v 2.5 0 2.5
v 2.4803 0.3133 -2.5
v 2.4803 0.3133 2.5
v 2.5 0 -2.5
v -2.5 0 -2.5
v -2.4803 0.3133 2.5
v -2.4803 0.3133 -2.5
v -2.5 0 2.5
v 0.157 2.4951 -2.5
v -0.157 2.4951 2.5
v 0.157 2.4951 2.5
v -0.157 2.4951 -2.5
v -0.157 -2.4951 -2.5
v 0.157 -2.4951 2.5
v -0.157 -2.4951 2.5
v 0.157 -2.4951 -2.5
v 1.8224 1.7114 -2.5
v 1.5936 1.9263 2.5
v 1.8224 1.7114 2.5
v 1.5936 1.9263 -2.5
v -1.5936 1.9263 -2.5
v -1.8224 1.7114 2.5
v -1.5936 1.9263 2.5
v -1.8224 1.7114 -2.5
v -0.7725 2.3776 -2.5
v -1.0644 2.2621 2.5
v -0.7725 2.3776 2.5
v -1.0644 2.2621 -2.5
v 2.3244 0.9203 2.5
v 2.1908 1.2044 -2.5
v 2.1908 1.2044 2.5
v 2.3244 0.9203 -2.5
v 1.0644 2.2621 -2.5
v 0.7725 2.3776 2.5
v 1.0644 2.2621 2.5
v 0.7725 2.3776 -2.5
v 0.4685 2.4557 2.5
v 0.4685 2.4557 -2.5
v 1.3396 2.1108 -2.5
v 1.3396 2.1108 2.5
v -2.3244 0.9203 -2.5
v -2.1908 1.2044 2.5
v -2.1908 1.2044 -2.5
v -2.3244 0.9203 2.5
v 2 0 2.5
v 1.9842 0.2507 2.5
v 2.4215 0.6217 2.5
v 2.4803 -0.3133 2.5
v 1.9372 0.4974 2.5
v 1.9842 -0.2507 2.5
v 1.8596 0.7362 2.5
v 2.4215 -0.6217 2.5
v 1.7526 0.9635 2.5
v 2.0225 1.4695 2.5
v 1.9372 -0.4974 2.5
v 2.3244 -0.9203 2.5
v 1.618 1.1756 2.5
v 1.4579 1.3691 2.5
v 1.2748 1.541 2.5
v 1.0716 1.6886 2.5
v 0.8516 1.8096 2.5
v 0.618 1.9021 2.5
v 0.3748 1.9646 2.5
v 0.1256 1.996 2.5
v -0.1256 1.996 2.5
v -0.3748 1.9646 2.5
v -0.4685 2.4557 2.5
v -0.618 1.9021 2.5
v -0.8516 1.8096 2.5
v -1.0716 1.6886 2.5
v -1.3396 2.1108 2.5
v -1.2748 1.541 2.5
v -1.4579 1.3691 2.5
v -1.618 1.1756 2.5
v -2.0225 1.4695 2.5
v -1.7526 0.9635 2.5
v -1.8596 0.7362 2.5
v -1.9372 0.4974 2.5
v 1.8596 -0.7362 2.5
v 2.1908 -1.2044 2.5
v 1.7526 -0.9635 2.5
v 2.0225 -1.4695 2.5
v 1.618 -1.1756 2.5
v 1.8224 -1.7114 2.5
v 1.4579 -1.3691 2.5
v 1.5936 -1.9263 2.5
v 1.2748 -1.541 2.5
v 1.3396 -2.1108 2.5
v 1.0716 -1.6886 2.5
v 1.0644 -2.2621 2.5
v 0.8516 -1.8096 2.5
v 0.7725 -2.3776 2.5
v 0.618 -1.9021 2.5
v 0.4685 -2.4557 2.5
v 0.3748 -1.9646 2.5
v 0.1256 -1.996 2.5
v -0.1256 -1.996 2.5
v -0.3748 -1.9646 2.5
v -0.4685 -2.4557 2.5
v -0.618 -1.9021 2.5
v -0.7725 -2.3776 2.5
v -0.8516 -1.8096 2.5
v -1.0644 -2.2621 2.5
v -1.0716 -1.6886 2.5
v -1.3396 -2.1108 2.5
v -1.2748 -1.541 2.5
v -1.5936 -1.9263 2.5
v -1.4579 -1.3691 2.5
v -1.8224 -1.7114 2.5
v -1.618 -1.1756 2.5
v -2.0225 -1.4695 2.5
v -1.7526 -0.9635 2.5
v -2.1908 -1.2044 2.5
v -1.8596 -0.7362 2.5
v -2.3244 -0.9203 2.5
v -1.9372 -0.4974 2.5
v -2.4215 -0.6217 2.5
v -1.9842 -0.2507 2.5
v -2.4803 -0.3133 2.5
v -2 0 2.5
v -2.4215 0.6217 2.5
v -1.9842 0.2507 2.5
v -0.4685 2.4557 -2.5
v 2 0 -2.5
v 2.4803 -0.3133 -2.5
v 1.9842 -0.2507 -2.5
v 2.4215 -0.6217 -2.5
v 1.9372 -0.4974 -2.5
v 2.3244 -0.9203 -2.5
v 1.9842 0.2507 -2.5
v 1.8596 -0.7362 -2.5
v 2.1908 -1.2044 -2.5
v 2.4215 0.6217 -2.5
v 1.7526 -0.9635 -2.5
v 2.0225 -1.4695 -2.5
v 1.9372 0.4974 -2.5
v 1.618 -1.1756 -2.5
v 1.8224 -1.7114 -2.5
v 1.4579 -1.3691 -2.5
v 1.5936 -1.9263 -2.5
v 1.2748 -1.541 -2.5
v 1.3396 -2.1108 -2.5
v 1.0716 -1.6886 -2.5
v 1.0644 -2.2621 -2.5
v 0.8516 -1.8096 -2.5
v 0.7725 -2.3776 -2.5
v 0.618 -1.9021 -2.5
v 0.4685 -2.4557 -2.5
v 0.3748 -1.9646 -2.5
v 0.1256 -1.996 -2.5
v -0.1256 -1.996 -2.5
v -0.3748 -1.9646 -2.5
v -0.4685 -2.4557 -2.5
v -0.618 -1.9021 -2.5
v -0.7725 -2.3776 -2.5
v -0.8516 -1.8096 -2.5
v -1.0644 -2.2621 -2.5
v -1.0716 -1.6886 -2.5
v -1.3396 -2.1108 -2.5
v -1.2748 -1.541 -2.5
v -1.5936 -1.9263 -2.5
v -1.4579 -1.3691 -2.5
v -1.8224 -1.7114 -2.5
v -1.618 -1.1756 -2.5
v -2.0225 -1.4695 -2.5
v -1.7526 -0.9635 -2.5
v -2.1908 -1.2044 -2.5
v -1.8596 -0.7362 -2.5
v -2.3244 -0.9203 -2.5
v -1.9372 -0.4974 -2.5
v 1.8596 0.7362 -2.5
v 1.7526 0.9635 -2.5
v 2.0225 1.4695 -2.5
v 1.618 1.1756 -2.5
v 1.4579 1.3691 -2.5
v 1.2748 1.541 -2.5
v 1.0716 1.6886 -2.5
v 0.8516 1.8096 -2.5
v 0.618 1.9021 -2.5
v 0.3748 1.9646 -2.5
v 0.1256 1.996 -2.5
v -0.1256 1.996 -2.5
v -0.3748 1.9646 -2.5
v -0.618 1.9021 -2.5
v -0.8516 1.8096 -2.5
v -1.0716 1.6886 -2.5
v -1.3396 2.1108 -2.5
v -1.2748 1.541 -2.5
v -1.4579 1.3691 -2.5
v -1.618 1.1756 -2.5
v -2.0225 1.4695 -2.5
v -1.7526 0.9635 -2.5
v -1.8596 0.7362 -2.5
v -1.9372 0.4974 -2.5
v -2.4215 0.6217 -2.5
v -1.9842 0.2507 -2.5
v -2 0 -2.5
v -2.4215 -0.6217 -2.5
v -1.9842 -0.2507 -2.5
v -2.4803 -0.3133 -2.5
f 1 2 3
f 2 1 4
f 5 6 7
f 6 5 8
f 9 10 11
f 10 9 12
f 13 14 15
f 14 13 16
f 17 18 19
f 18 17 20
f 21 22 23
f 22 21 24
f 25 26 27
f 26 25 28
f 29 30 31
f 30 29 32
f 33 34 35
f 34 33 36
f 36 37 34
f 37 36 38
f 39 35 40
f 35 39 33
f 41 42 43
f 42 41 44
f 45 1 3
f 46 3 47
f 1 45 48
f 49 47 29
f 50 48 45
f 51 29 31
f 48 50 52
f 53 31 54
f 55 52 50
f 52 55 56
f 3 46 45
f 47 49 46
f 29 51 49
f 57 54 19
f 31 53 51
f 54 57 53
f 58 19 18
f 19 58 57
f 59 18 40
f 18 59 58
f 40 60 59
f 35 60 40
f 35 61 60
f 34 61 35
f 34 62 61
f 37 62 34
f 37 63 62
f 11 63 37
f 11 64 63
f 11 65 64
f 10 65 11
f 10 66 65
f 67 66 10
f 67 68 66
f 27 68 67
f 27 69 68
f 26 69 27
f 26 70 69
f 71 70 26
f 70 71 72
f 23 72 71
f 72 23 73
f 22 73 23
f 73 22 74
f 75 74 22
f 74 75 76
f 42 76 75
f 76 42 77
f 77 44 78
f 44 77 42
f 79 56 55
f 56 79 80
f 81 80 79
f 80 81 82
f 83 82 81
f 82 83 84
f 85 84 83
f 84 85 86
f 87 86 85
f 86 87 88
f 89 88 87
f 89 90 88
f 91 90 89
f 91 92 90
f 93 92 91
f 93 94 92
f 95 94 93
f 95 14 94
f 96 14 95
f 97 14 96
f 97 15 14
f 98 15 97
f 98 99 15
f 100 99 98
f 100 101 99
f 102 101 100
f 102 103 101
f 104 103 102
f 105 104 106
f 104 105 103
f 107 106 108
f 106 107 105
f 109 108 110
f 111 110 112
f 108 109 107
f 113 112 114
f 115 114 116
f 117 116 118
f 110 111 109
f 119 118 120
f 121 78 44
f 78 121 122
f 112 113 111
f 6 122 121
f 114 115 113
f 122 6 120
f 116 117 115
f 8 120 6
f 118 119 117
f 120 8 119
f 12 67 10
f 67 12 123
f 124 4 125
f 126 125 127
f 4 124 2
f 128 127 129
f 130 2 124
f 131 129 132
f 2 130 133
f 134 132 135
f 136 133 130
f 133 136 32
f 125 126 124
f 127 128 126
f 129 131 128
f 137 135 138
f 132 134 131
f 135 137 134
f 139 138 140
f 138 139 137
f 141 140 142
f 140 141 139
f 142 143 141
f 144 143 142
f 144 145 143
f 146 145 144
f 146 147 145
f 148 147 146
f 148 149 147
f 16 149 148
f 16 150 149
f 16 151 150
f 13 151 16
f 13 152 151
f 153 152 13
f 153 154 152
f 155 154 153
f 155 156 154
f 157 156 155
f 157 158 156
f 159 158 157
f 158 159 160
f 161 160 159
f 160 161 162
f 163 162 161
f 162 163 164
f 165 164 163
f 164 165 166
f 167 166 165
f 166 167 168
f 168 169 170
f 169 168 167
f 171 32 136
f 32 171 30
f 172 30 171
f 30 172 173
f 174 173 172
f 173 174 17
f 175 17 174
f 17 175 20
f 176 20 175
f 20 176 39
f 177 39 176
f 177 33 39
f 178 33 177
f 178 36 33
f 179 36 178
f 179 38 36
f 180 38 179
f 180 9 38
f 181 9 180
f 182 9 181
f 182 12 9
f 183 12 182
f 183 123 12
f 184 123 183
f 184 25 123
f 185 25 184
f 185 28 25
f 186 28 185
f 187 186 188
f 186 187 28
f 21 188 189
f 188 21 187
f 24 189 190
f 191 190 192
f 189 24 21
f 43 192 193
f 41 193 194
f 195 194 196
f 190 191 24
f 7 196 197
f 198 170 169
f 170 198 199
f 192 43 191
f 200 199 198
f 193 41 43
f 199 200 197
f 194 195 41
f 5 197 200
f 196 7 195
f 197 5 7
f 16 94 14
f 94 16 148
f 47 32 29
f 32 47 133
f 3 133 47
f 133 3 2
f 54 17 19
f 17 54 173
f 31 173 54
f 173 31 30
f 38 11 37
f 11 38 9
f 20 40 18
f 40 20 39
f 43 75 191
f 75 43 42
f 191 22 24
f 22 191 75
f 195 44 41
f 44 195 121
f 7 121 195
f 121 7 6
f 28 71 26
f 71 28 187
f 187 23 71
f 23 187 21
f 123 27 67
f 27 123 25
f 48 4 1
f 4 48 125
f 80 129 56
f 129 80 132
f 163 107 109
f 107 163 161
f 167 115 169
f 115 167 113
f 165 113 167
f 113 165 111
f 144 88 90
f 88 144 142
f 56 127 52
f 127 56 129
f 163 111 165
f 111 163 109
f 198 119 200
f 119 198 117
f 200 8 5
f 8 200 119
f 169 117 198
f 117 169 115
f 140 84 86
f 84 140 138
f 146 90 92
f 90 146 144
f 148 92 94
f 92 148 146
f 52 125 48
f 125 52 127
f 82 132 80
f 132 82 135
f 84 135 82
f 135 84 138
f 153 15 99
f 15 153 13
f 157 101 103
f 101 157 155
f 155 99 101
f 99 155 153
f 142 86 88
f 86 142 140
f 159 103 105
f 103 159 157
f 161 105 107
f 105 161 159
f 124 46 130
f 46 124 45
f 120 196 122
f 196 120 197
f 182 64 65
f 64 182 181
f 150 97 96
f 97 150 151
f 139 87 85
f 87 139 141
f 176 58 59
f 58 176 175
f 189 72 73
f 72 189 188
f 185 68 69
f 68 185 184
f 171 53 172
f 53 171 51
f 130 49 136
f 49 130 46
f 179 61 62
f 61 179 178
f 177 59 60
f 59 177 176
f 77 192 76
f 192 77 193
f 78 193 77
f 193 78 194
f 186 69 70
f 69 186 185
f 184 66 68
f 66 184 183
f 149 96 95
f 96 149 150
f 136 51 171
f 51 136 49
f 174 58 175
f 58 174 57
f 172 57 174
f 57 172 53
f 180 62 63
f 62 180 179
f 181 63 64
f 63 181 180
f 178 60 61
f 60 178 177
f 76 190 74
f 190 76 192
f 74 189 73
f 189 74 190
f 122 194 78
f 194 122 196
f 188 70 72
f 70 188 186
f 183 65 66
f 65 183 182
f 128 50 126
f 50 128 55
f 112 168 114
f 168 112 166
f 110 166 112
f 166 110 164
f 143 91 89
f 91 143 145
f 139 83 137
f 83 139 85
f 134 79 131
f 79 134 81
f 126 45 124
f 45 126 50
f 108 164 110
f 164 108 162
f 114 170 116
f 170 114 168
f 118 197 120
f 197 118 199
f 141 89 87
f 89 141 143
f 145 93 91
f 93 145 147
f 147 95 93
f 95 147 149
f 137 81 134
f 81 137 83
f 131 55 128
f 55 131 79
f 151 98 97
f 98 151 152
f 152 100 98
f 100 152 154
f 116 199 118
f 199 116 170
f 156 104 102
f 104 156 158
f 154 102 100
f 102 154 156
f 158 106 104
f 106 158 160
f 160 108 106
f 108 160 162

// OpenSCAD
$fn = 50;


difference() {
	union() {
		translate(v = [0, 0, -2.5000000000]) {
			cylinder(h = 5, r = 2.5000000000);
		}
	}
	union() {
		translate(v = [0, 0, -100.0000000000]) {
			cylinder(h = 200, r = 2);
		}
	}
}
